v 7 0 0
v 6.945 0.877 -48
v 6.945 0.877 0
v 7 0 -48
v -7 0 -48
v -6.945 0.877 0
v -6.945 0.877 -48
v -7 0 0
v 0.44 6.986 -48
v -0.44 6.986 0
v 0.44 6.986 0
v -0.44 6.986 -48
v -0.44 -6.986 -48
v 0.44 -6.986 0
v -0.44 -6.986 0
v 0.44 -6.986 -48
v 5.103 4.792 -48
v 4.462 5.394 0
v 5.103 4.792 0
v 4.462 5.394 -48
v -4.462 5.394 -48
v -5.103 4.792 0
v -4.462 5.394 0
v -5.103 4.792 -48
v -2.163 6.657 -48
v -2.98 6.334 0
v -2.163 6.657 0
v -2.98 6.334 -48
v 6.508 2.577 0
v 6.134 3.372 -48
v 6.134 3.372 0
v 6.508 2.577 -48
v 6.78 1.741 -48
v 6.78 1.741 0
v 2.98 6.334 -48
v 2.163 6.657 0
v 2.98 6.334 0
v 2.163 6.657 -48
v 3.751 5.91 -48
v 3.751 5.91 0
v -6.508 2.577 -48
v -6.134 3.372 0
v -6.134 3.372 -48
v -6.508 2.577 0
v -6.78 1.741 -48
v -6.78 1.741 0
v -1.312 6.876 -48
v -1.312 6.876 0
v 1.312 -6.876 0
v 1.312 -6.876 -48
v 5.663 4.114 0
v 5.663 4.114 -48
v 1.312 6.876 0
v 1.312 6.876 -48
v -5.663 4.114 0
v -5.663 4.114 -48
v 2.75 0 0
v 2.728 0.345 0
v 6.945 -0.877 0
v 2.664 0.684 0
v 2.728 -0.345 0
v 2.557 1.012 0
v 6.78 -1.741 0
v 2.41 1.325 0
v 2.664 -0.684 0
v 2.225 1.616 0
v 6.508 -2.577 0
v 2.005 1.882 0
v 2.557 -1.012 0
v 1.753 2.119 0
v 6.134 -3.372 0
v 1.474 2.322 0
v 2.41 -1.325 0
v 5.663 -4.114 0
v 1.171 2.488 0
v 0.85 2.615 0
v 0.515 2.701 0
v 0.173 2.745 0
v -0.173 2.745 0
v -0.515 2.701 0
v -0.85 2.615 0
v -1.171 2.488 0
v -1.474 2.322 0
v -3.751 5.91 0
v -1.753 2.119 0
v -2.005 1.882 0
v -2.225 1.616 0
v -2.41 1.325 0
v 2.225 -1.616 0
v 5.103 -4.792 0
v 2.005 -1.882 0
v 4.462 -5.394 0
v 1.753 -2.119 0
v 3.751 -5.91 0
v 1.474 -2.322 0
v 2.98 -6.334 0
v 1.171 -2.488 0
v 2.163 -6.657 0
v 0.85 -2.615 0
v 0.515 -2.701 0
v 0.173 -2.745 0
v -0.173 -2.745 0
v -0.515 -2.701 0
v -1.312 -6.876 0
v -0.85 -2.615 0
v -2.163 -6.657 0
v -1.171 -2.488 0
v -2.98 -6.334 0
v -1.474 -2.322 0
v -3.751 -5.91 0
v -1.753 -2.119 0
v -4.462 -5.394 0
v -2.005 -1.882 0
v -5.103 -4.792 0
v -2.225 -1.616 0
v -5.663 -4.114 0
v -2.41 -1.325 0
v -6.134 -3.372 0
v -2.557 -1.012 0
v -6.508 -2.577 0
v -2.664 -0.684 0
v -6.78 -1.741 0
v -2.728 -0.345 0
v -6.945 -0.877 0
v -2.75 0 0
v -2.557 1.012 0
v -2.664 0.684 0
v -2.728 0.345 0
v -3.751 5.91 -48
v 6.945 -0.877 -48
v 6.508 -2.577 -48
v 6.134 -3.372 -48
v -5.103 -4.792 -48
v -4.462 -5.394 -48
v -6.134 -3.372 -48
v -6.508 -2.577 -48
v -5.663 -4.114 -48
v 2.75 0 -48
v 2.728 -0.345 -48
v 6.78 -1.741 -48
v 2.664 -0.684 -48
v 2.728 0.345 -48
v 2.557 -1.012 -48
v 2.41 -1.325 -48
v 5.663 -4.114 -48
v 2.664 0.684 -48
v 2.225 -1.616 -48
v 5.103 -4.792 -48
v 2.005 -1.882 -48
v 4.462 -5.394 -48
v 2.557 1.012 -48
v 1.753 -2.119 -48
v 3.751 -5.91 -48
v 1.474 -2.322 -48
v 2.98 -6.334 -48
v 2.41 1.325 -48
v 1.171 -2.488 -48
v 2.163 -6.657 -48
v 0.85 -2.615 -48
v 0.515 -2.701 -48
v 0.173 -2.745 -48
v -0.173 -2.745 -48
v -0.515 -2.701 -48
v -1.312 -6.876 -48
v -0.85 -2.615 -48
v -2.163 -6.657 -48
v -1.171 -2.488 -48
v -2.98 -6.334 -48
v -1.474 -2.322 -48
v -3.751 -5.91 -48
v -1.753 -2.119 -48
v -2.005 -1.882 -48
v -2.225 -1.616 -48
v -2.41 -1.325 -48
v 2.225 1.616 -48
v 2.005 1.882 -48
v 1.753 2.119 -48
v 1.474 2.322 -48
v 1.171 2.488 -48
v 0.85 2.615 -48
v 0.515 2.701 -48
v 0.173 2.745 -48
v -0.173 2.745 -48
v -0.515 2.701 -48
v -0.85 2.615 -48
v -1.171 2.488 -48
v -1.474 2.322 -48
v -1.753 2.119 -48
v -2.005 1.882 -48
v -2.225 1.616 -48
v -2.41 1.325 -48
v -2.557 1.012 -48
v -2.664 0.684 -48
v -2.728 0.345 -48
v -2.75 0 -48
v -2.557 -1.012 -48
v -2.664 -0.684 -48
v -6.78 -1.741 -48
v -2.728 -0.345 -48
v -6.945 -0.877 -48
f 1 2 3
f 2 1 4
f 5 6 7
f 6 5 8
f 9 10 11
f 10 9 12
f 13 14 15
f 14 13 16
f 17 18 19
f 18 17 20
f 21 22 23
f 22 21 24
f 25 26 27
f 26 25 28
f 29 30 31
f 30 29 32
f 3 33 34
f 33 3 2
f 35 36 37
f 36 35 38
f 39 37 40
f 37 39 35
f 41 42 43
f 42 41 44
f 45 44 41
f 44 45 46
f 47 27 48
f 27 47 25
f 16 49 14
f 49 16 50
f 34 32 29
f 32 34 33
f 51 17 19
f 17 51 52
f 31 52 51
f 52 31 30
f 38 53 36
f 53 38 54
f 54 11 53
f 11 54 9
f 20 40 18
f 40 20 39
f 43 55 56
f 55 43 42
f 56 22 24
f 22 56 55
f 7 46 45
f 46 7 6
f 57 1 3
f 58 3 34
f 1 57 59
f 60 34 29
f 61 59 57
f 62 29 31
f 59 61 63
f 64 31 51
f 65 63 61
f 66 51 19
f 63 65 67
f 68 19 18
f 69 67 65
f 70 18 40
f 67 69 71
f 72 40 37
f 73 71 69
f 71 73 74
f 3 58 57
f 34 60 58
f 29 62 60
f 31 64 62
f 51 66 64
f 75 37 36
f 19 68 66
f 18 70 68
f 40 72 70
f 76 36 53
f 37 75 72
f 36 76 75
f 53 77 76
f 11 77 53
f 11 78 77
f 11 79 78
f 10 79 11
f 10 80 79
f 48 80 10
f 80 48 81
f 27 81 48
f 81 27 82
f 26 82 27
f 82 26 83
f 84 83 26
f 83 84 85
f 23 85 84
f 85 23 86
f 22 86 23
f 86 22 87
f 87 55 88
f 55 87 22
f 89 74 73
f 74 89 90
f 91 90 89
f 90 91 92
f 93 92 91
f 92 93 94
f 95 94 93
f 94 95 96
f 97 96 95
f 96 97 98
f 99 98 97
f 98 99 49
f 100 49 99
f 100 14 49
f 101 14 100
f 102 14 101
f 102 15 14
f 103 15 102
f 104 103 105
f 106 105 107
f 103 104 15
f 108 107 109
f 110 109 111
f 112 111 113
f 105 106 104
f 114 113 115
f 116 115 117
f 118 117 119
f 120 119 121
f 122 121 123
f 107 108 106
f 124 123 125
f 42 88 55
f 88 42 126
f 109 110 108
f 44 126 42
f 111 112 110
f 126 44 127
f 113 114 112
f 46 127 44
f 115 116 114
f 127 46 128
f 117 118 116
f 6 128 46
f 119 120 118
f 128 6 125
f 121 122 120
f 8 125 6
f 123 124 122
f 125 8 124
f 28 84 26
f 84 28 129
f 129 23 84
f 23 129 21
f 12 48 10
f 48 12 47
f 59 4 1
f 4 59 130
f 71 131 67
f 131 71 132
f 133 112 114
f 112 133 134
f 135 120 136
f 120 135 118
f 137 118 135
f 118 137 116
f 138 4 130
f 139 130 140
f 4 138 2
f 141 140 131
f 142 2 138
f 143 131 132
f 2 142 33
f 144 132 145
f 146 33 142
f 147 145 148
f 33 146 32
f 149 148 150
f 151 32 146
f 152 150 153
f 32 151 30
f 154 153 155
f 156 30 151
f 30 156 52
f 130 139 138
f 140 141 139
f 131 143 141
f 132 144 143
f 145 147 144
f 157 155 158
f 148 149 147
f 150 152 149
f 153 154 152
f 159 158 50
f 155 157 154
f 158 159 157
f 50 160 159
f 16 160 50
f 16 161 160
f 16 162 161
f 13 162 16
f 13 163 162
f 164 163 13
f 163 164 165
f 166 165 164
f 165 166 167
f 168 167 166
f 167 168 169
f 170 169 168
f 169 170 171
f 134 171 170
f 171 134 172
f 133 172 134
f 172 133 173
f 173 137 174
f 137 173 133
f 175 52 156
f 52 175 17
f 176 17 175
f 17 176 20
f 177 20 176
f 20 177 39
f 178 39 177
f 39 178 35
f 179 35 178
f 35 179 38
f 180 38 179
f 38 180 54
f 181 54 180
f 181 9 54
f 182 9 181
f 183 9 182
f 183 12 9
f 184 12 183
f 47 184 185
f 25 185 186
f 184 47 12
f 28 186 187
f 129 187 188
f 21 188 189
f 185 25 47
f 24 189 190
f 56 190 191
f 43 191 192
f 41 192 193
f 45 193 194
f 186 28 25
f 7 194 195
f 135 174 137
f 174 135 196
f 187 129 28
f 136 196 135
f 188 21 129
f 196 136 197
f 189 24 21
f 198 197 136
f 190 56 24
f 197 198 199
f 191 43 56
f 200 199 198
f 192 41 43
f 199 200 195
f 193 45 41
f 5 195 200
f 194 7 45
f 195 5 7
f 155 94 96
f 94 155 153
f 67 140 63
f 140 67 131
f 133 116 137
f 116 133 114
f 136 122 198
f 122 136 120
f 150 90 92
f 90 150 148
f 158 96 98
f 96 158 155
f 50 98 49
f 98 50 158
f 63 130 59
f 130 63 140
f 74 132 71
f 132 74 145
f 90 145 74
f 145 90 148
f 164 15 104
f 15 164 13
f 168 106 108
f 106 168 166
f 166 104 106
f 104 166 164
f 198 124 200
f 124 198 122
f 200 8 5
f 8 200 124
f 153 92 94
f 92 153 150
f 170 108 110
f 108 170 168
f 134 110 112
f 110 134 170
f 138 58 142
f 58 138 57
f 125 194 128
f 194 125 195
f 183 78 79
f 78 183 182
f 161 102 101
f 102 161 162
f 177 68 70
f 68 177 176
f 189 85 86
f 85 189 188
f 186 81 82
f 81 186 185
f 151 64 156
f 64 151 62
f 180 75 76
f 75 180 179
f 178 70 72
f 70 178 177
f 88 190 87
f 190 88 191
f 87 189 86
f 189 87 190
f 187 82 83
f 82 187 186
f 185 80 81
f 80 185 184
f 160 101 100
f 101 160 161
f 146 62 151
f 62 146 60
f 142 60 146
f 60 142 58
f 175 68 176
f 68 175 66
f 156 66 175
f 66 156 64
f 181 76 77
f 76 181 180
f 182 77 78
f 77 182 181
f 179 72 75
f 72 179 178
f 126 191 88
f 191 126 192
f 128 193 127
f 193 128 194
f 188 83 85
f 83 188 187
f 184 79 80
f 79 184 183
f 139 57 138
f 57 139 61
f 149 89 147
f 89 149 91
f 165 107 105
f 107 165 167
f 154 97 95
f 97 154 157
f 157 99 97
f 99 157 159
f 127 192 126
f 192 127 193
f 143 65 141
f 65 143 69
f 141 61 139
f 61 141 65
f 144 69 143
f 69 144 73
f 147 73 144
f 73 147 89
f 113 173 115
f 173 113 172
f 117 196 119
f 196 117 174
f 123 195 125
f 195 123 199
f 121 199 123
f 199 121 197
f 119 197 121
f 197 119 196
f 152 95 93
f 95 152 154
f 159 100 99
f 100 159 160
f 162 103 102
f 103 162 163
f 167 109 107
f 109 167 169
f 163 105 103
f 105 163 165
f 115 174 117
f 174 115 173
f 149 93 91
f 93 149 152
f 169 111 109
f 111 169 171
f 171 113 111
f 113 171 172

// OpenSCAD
$fn = 50;


difference() {
	union() {
		translate(v = [0, 0, -48.0000000000]) {
			cylinder(h = 48, r = 7.0000000000);
		}
		cylinder(h = 0, r = 13.0000000000);
	}
	union() {
		#translate(v = [0, 0, -48]) {
			cylinder(h = 48, r = 2.7500000000);
		}
	}
}
